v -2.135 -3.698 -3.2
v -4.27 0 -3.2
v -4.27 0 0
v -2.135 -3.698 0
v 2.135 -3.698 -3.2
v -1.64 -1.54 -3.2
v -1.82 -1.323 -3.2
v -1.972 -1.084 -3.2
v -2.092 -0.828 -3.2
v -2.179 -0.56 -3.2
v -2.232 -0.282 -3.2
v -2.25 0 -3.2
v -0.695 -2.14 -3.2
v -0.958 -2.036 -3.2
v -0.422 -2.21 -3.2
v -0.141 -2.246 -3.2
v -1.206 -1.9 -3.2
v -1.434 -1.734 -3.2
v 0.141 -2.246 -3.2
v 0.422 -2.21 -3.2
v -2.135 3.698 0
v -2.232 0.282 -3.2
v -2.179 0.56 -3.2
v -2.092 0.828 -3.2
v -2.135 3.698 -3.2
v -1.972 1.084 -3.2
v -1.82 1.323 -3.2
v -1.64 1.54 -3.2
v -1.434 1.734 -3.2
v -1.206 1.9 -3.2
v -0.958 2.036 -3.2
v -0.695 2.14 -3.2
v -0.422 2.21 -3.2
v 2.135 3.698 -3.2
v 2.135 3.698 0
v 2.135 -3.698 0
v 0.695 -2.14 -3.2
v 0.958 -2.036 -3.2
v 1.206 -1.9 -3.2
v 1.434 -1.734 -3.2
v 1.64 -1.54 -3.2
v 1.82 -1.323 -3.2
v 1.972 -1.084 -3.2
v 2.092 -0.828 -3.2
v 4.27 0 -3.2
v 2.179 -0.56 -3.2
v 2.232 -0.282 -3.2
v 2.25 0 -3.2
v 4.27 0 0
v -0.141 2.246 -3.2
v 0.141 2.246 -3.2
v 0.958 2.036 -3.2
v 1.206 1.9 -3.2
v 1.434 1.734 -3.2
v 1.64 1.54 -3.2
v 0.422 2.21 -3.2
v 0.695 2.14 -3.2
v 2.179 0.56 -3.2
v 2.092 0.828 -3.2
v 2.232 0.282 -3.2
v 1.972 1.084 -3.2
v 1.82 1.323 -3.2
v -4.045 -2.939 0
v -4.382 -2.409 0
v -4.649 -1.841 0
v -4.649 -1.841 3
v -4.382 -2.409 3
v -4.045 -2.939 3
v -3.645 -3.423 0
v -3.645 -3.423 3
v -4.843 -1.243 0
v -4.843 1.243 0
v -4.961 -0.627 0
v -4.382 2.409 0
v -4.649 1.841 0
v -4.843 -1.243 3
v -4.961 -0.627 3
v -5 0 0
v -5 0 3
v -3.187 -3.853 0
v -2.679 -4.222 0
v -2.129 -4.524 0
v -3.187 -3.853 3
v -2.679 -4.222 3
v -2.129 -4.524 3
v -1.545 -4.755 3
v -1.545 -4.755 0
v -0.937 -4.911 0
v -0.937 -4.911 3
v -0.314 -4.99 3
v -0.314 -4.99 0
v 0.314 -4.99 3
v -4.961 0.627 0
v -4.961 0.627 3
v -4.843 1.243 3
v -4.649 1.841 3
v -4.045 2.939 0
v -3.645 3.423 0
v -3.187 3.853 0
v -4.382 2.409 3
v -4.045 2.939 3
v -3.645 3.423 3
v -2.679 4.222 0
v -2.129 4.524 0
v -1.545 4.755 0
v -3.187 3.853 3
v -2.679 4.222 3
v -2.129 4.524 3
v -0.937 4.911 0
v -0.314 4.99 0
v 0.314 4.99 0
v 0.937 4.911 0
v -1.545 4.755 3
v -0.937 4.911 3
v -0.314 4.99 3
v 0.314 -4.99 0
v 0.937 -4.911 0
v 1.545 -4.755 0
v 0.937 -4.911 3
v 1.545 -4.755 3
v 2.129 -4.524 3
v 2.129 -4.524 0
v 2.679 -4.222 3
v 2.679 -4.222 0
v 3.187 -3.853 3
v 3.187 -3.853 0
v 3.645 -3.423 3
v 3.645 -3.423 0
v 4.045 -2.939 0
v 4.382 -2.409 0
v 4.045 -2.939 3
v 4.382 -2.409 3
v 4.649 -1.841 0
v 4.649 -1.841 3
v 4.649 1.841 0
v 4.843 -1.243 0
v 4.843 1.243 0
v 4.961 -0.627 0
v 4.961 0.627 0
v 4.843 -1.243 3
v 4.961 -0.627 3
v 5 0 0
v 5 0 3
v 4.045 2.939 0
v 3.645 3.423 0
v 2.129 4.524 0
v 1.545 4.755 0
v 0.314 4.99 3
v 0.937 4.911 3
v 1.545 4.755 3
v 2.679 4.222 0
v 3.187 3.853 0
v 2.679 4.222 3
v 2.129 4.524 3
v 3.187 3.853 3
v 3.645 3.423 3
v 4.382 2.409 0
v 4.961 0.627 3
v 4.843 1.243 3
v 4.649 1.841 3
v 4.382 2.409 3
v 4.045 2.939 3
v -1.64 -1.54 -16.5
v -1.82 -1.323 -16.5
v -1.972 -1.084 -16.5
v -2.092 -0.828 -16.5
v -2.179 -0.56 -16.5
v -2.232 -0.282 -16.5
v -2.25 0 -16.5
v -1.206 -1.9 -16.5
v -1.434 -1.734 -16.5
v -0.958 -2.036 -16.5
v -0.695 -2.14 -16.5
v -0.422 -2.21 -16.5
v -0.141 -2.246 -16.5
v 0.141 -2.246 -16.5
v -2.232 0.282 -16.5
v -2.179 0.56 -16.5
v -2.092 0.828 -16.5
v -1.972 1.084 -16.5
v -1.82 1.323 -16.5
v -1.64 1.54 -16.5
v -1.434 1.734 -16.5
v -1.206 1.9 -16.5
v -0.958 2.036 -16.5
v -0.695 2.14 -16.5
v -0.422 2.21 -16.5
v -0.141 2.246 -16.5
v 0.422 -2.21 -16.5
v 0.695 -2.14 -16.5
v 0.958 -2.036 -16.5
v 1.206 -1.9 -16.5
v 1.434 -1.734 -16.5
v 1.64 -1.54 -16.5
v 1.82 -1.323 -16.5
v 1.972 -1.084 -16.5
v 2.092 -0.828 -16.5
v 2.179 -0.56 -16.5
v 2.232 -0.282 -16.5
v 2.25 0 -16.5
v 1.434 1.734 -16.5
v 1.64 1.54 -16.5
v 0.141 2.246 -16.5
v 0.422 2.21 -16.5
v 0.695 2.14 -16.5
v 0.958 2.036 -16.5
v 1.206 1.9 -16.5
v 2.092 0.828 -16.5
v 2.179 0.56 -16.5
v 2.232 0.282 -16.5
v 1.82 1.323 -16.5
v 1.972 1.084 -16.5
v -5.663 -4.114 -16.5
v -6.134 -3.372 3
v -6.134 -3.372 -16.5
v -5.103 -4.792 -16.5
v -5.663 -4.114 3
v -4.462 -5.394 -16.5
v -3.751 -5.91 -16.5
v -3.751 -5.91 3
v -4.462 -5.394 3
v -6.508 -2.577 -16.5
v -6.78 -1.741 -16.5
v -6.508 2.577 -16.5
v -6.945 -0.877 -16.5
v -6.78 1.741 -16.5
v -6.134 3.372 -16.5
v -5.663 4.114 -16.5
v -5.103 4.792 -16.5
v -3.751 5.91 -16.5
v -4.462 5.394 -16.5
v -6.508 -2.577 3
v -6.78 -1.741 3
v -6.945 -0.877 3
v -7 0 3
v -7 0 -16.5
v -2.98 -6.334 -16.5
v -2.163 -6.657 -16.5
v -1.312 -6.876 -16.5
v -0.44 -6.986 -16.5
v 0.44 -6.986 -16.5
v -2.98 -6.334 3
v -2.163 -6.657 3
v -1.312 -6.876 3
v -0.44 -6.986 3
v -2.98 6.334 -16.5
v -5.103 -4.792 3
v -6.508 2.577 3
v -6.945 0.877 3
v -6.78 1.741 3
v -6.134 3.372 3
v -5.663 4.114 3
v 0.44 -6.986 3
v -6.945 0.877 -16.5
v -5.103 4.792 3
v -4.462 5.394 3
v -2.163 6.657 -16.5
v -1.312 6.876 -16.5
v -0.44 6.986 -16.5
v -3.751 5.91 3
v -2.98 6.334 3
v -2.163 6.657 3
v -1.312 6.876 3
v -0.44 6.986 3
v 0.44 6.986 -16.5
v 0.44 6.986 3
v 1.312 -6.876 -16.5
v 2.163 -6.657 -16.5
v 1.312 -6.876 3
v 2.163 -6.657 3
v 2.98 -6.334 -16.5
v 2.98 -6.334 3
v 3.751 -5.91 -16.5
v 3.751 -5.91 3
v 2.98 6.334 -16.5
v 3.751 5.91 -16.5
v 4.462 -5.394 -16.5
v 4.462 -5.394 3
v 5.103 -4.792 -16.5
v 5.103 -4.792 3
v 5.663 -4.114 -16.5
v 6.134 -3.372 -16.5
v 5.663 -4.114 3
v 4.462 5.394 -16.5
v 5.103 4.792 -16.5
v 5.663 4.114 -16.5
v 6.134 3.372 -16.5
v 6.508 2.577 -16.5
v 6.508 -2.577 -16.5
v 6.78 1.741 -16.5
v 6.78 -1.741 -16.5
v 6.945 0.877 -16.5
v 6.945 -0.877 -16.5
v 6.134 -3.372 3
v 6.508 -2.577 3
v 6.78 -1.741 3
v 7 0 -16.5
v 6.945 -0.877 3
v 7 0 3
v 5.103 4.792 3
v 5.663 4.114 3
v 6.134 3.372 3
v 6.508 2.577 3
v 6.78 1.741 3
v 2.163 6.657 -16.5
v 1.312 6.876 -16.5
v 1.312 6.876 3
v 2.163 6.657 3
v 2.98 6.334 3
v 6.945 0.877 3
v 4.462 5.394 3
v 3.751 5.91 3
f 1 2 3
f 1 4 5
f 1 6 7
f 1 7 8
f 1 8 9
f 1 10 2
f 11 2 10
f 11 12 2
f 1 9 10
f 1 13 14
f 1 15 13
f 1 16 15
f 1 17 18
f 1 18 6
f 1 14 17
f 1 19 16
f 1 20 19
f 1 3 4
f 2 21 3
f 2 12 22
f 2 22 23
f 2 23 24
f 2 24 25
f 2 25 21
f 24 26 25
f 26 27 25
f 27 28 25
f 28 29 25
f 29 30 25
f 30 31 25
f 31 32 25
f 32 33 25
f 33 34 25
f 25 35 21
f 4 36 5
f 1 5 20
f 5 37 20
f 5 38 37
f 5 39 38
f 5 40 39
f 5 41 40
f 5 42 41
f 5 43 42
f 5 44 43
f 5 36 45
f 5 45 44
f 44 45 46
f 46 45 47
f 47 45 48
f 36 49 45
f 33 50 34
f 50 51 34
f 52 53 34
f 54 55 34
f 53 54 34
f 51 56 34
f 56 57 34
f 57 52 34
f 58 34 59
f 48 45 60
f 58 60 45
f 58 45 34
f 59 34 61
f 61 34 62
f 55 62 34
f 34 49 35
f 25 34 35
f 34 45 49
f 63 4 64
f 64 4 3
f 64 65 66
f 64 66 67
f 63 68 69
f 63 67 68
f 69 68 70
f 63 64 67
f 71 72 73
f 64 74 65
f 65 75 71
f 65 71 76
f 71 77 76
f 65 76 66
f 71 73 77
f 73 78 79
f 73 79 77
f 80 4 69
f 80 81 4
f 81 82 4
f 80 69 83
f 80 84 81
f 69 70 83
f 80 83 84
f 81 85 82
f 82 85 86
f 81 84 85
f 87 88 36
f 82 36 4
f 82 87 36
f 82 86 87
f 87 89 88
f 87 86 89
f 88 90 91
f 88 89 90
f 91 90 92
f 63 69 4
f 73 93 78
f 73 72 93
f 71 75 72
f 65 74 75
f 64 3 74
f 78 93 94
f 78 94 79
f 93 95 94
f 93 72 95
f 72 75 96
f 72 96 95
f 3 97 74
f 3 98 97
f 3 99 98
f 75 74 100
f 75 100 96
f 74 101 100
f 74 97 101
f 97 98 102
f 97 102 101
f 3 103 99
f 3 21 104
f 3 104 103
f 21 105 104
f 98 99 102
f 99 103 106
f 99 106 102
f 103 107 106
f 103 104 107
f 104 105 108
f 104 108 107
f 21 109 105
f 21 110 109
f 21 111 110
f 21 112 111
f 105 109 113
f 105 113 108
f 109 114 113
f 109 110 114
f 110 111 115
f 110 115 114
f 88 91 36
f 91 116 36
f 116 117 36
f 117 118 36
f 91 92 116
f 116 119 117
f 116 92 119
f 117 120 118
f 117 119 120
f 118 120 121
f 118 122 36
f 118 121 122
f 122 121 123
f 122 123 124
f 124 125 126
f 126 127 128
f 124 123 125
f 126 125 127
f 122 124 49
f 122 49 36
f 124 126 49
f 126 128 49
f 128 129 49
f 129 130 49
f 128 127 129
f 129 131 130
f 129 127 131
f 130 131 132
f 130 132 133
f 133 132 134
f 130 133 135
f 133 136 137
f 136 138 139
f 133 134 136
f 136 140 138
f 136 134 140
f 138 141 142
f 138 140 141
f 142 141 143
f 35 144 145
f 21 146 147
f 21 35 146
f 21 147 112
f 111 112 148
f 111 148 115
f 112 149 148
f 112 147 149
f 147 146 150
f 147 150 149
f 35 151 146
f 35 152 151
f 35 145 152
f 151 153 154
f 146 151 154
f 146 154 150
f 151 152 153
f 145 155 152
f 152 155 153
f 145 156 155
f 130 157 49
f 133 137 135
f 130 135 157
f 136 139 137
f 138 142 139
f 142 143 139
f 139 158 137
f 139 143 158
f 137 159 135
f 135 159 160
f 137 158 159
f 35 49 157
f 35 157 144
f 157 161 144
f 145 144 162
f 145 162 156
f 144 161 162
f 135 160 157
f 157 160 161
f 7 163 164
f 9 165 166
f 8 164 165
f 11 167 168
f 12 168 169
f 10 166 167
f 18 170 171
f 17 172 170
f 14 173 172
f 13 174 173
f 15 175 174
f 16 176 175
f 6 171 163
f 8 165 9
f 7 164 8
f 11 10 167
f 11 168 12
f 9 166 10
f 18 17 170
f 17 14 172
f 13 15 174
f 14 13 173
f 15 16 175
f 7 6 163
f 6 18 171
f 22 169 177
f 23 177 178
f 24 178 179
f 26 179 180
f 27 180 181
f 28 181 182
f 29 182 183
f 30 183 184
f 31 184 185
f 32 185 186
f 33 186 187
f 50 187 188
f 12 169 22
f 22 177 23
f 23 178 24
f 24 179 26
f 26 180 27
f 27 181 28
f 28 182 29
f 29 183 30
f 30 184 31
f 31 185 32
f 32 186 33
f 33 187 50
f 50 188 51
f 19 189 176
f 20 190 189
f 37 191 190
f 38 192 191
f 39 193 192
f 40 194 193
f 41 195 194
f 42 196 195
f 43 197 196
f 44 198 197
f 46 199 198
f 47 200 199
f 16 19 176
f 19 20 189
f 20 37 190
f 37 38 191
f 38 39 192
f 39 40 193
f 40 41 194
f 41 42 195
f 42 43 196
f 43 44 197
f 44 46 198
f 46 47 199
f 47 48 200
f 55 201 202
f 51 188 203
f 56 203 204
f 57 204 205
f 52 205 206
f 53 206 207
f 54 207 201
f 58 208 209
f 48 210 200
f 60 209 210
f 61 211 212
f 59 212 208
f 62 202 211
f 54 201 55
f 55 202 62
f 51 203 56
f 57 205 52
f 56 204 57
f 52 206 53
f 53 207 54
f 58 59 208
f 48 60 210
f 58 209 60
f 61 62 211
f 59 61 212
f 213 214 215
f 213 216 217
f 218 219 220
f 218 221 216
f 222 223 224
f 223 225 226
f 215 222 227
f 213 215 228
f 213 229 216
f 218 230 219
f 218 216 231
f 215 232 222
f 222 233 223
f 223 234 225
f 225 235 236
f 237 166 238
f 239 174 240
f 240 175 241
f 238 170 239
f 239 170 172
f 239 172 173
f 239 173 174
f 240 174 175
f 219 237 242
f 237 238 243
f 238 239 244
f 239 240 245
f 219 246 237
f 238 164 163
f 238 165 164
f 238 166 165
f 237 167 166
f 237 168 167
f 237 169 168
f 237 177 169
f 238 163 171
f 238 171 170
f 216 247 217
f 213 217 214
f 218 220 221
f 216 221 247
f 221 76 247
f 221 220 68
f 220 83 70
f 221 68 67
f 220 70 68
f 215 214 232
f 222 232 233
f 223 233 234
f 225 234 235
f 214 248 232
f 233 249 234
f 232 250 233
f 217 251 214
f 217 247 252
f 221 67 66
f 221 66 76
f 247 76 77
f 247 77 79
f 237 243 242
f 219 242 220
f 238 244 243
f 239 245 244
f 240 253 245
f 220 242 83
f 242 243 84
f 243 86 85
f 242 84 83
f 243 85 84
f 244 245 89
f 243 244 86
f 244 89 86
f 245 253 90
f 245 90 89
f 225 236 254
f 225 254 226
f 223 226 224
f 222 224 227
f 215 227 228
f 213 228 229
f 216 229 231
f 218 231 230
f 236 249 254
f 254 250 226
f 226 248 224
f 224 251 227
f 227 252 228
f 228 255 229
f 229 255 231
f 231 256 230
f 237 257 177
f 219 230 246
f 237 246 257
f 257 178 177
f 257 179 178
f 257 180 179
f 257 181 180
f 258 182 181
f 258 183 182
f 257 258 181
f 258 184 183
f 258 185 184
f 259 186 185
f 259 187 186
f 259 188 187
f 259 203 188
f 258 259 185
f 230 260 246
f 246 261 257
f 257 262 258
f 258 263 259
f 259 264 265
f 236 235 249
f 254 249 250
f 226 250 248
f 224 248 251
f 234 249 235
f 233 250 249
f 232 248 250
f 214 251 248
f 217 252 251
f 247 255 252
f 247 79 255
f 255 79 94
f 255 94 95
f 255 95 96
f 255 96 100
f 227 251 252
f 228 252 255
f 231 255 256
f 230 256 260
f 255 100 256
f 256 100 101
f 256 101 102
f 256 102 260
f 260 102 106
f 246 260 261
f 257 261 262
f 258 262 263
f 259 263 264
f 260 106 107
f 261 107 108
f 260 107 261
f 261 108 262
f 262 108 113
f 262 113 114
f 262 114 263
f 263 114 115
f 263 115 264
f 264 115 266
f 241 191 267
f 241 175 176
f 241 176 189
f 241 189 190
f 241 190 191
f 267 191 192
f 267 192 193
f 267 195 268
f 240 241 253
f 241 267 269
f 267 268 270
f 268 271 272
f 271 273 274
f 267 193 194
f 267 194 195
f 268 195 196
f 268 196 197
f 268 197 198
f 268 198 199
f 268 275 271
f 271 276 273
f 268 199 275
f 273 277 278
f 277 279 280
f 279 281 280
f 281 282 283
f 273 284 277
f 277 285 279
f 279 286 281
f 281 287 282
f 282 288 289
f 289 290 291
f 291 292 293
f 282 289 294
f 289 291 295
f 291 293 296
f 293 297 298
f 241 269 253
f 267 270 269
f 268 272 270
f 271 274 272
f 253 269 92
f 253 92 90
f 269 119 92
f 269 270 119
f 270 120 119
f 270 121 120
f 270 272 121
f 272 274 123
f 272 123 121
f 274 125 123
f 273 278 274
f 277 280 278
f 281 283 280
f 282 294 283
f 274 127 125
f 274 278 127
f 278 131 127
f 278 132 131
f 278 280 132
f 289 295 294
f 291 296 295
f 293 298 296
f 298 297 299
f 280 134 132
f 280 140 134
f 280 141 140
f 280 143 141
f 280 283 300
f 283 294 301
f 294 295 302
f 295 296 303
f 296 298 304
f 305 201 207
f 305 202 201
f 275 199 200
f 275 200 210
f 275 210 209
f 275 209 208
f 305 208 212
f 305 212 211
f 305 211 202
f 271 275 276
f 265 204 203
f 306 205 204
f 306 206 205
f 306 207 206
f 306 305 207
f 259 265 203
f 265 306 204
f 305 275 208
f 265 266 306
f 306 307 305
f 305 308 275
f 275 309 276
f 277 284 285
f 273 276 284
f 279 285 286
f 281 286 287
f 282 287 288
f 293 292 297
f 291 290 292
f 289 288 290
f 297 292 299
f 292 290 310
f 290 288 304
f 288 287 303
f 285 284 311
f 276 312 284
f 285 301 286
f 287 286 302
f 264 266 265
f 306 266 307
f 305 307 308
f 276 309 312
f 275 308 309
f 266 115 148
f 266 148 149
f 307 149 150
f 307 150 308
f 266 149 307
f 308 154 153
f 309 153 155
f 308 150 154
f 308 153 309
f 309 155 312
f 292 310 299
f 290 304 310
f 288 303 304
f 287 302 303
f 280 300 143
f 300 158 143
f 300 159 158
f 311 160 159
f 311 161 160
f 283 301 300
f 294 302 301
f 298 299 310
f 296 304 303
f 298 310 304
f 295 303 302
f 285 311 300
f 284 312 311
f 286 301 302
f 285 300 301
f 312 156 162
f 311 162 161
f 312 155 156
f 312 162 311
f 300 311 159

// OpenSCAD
$fn = 50;

difference() {
	union() {
		translate(v = [0, 0, -16.5]) {
			cylinder(h = 19.5, r = 7.0);
		}
	}
	union() {
		translate(v = [0, 0, 0]) {
			rotate(a = [0, 0, 0]) {
				difference() {
					union() {
						translate(v = [0, 0, -3.2]) {
							linear_extrude(height = 3.2) {
								polygon(points = [[4.2698, 0.0], [2.1349000000000005, 3.697755269078796], [-2.134899999999999, 3.6977552690787965], [-4.2698, 5.228996902999369e-16], [-2.134900000000002, -3.6977552690787956], [2.1348999999999974, -3.697755269078798]]);
							}
						}
					}
					union();
				}
			}
		}
		#cylinder(h = 3, r = 5.0);
		#translate(v = [0, 0, -100.0]) {
			cylinder(h = 200, r = 2.25);
		}
	}
}
